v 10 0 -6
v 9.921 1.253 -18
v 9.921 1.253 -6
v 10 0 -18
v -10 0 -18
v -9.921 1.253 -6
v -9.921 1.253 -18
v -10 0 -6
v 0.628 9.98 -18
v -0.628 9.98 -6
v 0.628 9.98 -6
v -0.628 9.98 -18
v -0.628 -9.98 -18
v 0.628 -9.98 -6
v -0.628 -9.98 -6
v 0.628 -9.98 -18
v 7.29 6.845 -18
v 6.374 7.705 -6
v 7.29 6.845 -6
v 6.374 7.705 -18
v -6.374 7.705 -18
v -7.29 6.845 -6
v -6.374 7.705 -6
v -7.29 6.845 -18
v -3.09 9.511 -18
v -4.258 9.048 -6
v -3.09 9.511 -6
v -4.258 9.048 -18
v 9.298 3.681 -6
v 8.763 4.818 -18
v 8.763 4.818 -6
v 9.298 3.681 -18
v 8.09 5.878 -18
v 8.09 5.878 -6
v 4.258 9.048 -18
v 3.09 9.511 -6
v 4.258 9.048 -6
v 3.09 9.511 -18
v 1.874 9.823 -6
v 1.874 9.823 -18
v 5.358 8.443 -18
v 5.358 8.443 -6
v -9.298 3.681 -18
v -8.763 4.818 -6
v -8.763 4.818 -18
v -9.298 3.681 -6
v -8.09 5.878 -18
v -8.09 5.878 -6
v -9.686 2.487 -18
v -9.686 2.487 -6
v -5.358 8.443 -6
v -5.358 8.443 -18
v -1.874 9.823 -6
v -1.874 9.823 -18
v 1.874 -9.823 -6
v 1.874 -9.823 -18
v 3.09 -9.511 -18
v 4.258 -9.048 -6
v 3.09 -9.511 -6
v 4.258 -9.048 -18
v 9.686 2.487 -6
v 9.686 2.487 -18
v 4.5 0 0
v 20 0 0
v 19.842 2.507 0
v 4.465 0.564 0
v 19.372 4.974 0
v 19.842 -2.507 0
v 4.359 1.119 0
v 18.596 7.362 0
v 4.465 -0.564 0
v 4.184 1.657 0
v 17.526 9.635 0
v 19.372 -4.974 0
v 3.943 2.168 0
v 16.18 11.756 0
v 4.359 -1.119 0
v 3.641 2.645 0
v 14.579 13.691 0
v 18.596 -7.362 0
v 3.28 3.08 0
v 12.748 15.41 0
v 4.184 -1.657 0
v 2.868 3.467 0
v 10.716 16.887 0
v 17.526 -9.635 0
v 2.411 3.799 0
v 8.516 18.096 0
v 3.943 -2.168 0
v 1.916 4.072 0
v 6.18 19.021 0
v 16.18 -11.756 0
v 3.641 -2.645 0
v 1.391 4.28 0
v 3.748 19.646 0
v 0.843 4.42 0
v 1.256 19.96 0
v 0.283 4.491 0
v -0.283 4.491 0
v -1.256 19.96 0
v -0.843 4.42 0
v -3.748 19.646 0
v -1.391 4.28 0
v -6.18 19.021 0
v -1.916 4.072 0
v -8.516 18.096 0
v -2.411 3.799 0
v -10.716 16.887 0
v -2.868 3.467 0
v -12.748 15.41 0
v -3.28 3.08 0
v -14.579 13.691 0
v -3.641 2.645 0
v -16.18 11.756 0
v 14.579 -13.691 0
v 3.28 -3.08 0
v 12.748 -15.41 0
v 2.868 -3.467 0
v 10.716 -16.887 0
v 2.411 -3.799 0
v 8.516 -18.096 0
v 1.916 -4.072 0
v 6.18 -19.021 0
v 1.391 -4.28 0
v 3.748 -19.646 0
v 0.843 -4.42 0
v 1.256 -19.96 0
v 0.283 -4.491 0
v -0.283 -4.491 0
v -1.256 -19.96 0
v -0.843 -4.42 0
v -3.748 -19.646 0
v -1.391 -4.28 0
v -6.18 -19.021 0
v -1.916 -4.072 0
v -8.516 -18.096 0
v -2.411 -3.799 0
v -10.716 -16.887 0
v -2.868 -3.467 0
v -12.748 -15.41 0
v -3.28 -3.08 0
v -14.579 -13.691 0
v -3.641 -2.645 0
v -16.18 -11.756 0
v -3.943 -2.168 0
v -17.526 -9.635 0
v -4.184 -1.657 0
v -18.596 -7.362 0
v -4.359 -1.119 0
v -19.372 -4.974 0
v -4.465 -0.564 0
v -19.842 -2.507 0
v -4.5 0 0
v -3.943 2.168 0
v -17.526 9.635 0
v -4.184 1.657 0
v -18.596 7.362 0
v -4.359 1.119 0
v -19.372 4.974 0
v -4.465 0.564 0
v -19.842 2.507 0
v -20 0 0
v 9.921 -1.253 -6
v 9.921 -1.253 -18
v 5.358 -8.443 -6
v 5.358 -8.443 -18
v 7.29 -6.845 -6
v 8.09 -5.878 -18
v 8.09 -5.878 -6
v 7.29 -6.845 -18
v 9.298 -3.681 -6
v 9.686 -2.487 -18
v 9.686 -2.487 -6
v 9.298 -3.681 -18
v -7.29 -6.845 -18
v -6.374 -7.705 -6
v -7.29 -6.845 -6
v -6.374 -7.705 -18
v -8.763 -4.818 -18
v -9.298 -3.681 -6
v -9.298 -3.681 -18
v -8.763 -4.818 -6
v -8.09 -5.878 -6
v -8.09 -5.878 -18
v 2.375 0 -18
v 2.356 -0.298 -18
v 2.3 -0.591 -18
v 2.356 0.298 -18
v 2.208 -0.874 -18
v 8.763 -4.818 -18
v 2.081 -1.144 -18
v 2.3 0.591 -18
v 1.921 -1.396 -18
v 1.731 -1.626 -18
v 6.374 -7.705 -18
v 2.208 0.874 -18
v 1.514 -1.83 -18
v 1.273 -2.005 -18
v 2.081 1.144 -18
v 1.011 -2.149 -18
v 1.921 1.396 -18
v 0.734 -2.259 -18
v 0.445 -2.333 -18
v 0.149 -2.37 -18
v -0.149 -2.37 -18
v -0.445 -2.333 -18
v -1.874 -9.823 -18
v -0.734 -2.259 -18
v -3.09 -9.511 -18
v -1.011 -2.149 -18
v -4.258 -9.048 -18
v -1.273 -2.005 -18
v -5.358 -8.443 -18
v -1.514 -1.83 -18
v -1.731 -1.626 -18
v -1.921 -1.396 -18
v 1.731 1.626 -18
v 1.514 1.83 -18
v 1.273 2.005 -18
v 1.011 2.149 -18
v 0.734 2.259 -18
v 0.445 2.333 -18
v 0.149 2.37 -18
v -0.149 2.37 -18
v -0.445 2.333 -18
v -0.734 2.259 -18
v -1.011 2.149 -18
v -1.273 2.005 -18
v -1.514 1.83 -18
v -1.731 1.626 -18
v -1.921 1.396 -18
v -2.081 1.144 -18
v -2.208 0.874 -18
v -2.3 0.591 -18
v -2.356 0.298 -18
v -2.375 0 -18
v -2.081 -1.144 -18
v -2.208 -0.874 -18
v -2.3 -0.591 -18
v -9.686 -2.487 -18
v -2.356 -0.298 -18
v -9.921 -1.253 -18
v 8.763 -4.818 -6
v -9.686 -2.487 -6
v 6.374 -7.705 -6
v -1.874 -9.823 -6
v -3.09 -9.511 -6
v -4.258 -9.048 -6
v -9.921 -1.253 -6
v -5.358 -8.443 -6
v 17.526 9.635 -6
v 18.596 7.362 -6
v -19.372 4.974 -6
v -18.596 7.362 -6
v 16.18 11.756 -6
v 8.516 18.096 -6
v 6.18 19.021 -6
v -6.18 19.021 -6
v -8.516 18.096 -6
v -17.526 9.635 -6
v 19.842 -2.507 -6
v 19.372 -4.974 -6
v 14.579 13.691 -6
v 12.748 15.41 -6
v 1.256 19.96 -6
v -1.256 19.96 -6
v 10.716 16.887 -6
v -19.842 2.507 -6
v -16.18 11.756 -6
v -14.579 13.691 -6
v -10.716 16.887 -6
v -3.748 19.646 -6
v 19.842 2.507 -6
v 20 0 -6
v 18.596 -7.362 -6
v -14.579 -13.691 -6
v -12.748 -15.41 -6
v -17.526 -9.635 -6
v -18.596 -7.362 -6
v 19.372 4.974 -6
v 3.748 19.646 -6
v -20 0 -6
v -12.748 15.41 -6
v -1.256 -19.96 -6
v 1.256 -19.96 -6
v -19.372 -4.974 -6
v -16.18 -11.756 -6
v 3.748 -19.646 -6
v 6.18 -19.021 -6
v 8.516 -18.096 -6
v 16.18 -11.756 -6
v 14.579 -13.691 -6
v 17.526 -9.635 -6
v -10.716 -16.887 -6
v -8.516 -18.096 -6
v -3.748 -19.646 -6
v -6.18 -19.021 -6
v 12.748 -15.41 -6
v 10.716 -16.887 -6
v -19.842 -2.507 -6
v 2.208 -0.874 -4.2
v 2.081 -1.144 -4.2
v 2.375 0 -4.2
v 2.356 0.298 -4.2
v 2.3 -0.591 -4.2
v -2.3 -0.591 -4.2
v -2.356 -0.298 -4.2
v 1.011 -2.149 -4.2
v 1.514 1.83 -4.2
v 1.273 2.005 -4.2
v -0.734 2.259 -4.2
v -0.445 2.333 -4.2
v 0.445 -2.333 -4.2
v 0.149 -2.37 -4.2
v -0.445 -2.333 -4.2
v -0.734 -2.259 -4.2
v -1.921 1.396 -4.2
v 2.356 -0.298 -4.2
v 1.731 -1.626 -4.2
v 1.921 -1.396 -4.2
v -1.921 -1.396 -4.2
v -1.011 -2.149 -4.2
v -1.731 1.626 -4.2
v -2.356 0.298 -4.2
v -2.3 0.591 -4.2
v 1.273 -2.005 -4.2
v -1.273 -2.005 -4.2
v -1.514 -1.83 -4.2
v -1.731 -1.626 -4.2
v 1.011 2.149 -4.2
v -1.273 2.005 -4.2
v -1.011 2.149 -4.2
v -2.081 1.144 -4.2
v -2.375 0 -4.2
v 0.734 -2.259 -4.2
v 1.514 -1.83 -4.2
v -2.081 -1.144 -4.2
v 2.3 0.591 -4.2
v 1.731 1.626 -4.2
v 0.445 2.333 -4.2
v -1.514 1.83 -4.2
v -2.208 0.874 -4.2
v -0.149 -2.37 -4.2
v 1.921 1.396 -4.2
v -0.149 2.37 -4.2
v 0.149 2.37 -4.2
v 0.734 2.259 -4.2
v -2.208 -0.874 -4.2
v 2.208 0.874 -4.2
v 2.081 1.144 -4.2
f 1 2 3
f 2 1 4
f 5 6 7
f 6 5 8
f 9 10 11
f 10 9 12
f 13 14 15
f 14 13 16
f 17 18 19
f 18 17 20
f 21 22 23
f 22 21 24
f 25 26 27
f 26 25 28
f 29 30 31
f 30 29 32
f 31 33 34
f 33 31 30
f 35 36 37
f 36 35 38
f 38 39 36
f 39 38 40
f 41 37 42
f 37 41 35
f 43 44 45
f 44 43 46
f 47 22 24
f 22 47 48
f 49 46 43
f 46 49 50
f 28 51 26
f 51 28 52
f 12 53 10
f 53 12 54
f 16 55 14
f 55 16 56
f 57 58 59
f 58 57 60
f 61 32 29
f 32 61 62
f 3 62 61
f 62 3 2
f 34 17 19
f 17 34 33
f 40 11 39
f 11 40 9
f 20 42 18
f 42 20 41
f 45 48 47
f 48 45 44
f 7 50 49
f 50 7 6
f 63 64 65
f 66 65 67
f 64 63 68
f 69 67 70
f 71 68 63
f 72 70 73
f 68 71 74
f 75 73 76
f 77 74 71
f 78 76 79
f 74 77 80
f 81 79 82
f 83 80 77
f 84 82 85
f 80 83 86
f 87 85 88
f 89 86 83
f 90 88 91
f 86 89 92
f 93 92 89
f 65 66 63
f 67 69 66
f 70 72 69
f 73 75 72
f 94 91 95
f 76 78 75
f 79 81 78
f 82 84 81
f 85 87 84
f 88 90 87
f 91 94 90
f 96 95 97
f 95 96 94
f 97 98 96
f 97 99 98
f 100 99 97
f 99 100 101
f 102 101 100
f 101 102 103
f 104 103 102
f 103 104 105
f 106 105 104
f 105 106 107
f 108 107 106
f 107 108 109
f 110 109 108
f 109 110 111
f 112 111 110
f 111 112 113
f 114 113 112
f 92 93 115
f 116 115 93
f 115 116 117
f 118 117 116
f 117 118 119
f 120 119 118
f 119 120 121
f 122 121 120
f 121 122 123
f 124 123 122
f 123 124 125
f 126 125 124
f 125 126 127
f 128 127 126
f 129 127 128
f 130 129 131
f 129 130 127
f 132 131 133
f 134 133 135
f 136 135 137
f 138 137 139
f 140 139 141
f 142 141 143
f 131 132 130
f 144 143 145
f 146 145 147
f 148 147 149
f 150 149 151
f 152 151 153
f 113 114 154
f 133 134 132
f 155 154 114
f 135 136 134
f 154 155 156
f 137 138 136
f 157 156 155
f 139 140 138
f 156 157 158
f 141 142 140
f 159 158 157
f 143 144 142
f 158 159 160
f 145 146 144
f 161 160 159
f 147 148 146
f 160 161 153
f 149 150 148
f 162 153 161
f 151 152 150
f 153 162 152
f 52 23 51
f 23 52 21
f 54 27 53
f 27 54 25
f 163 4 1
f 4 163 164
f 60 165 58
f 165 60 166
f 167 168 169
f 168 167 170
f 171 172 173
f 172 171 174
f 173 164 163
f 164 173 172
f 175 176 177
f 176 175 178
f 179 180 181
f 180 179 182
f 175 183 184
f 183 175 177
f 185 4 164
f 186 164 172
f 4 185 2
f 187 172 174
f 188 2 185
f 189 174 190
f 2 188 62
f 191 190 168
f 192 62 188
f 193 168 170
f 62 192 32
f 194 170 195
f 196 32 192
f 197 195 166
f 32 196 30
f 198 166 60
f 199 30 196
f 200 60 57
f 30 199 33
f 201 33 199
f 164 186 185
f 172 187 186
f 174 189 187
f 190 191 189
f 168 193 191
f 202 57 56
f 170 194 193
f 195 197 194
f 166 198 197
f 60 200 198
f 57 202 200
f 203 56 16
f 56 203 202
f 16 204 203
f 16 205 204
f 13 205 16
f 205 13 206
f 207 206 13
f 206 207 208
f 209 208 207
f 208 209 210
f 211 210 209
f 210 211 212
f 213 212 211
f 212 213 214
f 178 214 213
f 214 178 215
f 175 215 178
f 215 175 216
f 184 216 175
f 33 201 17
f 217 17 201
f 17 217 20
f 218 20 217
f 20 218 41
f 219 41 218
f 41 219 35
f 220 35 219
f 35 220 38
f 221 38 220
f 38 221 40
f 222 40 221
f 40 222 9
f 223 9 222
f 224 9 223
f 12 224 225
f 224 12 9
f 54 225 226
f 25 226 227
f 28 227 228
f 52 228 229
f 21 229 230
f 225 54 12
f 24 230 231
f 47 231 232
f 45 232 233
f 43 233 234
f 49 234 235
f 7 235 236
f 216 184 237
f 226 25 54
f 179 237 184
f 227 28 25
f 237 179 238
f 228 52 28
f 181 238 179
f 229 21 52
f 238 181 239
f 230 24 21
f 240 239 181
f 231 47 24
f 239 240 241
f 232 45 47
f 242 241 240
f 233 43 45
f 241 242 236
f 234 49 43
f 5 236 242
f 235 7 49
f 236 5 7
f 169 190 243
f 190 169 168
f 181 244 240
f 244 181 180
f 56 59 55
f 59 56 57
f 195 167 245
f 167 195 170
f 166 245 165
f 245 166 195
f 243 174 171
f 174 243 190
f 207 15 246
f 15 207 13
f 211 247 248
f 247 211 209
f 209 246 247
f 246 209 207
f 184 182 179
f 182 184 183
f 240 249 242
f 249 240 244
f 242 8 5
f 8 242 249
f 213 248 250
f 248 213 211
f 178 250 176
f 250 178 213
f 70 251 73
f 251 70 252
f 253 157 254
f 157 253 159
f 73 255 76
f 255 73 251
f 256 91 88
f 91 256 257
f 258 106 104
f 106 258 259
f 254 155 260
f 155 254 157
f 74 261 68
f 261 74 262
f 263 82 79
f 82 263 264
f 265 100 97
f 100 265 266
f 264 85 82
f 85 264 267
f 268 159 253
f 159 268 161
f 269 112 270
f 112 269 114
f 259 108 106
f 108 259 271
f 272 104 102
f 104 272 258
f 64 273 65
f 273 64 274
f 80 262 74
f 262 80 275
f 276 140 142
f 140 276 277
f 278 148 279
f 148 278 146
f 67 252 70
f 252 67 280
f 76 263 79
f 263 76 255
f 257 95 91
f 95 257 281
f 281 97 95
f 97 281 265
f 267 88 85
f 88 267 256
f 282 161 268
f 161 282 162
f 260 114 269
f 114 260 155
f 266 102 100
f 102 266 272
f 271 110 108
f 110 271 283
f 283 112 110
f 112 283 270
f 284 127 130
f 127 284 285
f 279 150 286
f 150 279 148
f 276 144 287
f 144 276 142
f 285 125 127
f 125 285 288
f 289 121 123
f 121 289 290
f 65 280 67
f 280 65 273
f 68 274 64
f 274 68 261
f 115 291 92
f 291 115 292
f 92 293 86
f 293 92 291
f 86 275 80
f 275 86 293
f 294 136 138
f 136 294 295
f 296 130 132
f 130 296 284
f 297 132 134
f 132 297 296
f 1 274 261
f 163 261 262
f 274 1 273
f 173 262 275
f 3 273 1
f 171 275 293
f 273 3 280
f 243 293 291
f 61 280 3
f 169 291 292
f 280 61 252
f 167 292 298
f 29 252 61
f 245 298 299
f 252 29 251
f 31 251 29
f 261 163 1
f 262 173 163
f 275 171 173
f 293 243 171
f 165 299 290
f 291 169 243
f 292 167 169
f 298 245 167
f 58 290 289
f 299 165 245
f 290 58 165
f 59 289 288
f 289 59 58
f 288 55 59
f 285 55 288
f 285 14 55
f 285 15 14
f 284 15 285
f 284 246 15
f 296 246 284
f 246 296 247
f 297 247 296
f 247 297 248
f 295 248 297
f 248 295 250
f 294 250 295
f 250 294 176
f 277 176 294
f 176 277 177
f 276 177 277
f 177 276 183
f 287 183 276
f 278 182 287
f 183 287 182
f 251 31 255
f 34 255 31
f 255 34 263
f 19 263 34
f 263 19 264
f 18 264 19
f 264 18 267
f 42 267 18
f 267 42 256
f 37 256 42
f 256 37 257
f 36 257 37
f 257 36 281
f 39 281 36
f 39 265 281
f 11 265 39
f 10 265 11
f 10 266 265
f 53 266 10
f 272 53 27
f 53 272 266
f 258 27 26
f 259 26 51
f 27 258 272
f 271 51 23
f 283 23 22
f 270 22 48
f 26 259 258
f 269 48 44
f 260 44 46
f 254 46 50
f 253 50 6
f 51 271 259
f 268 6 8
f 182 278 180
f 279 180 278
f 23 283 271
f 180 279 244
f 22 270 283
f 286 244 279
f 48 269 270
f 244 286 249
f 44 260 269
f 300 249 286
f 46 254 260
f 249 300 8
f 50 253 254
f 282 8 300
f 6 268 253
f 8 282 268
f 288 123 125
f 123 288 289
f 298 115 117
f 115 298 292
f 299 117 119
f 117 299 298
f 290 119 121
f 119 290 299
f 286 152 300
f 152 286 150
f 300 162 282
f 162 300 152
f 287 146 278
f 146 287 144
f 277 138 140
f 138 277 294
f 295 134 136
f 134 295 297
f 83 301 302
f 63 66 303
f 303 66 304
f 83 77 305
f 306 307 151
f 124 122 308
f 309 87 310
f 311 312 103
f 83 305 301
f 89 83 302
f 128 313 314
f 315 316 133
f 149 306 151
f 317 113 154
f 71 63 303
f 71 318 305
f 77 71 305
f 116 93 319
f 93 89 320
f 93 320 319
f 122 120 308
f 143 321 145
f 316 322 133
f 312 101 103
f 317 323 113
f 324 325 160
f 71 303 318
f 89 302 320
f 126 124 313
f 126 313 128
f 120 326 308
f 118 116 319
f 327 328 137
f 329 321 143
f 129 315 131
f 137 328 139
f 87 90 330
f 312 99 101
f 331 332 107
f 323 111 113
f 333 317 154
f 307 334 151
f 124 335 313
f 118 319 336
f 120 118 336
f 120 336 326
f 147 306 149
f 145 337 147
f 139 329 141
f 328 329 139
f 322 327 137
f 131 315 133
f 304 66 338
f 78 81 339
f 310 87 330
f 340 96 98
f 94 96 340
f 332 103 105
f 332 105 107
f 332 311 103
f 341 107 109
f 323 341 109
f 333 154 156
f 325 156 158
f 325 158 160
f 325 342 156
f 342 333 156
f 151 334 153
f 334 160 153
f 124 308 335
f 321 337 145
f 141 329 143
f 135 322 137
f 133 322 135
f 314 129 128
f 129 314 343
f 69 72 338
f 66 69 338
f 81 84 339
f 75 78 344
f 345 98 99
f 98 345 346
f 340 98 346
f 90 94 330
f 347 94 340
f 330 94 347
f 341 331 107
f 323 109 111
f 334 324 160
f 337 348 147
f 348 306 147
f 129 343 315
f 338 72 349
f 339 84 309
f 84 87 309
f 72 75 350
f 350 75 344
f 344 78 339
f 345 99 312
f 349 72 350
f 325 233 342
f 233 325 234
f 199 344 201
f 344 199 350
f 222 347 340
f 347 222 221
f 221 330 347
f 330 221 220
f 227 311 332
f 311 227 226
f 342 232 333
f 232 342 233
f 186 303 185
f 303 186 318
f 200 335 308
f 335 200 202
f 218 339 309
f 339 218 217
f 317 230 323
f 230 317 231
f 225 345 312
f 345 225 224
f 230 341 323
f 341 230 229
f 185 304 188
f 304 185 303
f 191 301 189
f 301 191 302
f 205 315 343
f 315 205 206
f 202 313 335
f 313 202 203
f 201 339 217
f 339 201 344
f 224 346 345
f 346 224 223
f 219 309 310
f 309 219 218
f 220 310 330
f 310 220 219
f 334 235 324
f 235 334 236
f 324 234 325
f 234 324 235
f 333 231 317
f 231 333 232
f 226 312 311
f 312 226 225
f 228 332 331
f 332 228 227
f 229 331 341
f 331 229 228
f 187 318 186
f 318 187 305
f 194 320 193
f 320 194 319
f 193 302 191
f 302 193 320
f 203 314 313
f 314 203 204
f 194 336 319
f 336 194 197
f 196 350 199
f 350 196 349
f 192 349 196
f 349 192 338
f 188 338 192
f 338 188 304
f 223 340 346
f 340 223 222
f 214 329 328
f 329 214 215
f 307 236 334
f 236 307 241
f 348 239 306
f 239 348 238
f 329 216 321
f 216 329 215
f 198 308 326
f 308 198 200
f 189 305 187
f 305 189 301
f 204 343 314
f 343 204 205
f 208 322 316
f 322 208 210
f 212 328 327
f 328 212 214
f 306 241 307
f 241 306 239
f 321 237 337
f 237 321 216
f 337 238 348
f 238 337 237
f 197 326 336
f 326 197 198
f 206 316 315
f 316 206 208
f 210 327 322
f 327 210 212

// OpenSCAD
$fn = 50;


difference() {
	union() {
		translate(v = [0, 0, -18.0000000000]) {
			cylinder(h = 18, r = 10.0000000000);
		}
		translate(v = [0, 0, -6.0000000000]) {
			cylinder(h = 6, r = 20.0000000000);
		}
	}
	union() {
		translate(v = [0, 0, 0]) {
			rotate(a = [0, 0, 0]) {
				difference() {
					union() {
						#translate(v = [0, 0, -18.0000000000]) {
							cylinder(h = 18, r = 2.2500000000);
						}
						#translate(v = [0, 0, -4.2000000000]) {
							cylinder(h = 4.2000000000, r = 10.0000000000, r1 = 2.3750000000, r2 = 4.5000000000);
						}
						#translate(v = [0, 0, -18.0000000000]) {
							cylinder(h = 18, r = 2.3750000000);
						}
						#translate(v = [0, 0, -18.0000000000]) {
							cylinder(h = 18, r = 2.2500000000);
						}
					}
					union();
				}
			}
		}
	}
}
